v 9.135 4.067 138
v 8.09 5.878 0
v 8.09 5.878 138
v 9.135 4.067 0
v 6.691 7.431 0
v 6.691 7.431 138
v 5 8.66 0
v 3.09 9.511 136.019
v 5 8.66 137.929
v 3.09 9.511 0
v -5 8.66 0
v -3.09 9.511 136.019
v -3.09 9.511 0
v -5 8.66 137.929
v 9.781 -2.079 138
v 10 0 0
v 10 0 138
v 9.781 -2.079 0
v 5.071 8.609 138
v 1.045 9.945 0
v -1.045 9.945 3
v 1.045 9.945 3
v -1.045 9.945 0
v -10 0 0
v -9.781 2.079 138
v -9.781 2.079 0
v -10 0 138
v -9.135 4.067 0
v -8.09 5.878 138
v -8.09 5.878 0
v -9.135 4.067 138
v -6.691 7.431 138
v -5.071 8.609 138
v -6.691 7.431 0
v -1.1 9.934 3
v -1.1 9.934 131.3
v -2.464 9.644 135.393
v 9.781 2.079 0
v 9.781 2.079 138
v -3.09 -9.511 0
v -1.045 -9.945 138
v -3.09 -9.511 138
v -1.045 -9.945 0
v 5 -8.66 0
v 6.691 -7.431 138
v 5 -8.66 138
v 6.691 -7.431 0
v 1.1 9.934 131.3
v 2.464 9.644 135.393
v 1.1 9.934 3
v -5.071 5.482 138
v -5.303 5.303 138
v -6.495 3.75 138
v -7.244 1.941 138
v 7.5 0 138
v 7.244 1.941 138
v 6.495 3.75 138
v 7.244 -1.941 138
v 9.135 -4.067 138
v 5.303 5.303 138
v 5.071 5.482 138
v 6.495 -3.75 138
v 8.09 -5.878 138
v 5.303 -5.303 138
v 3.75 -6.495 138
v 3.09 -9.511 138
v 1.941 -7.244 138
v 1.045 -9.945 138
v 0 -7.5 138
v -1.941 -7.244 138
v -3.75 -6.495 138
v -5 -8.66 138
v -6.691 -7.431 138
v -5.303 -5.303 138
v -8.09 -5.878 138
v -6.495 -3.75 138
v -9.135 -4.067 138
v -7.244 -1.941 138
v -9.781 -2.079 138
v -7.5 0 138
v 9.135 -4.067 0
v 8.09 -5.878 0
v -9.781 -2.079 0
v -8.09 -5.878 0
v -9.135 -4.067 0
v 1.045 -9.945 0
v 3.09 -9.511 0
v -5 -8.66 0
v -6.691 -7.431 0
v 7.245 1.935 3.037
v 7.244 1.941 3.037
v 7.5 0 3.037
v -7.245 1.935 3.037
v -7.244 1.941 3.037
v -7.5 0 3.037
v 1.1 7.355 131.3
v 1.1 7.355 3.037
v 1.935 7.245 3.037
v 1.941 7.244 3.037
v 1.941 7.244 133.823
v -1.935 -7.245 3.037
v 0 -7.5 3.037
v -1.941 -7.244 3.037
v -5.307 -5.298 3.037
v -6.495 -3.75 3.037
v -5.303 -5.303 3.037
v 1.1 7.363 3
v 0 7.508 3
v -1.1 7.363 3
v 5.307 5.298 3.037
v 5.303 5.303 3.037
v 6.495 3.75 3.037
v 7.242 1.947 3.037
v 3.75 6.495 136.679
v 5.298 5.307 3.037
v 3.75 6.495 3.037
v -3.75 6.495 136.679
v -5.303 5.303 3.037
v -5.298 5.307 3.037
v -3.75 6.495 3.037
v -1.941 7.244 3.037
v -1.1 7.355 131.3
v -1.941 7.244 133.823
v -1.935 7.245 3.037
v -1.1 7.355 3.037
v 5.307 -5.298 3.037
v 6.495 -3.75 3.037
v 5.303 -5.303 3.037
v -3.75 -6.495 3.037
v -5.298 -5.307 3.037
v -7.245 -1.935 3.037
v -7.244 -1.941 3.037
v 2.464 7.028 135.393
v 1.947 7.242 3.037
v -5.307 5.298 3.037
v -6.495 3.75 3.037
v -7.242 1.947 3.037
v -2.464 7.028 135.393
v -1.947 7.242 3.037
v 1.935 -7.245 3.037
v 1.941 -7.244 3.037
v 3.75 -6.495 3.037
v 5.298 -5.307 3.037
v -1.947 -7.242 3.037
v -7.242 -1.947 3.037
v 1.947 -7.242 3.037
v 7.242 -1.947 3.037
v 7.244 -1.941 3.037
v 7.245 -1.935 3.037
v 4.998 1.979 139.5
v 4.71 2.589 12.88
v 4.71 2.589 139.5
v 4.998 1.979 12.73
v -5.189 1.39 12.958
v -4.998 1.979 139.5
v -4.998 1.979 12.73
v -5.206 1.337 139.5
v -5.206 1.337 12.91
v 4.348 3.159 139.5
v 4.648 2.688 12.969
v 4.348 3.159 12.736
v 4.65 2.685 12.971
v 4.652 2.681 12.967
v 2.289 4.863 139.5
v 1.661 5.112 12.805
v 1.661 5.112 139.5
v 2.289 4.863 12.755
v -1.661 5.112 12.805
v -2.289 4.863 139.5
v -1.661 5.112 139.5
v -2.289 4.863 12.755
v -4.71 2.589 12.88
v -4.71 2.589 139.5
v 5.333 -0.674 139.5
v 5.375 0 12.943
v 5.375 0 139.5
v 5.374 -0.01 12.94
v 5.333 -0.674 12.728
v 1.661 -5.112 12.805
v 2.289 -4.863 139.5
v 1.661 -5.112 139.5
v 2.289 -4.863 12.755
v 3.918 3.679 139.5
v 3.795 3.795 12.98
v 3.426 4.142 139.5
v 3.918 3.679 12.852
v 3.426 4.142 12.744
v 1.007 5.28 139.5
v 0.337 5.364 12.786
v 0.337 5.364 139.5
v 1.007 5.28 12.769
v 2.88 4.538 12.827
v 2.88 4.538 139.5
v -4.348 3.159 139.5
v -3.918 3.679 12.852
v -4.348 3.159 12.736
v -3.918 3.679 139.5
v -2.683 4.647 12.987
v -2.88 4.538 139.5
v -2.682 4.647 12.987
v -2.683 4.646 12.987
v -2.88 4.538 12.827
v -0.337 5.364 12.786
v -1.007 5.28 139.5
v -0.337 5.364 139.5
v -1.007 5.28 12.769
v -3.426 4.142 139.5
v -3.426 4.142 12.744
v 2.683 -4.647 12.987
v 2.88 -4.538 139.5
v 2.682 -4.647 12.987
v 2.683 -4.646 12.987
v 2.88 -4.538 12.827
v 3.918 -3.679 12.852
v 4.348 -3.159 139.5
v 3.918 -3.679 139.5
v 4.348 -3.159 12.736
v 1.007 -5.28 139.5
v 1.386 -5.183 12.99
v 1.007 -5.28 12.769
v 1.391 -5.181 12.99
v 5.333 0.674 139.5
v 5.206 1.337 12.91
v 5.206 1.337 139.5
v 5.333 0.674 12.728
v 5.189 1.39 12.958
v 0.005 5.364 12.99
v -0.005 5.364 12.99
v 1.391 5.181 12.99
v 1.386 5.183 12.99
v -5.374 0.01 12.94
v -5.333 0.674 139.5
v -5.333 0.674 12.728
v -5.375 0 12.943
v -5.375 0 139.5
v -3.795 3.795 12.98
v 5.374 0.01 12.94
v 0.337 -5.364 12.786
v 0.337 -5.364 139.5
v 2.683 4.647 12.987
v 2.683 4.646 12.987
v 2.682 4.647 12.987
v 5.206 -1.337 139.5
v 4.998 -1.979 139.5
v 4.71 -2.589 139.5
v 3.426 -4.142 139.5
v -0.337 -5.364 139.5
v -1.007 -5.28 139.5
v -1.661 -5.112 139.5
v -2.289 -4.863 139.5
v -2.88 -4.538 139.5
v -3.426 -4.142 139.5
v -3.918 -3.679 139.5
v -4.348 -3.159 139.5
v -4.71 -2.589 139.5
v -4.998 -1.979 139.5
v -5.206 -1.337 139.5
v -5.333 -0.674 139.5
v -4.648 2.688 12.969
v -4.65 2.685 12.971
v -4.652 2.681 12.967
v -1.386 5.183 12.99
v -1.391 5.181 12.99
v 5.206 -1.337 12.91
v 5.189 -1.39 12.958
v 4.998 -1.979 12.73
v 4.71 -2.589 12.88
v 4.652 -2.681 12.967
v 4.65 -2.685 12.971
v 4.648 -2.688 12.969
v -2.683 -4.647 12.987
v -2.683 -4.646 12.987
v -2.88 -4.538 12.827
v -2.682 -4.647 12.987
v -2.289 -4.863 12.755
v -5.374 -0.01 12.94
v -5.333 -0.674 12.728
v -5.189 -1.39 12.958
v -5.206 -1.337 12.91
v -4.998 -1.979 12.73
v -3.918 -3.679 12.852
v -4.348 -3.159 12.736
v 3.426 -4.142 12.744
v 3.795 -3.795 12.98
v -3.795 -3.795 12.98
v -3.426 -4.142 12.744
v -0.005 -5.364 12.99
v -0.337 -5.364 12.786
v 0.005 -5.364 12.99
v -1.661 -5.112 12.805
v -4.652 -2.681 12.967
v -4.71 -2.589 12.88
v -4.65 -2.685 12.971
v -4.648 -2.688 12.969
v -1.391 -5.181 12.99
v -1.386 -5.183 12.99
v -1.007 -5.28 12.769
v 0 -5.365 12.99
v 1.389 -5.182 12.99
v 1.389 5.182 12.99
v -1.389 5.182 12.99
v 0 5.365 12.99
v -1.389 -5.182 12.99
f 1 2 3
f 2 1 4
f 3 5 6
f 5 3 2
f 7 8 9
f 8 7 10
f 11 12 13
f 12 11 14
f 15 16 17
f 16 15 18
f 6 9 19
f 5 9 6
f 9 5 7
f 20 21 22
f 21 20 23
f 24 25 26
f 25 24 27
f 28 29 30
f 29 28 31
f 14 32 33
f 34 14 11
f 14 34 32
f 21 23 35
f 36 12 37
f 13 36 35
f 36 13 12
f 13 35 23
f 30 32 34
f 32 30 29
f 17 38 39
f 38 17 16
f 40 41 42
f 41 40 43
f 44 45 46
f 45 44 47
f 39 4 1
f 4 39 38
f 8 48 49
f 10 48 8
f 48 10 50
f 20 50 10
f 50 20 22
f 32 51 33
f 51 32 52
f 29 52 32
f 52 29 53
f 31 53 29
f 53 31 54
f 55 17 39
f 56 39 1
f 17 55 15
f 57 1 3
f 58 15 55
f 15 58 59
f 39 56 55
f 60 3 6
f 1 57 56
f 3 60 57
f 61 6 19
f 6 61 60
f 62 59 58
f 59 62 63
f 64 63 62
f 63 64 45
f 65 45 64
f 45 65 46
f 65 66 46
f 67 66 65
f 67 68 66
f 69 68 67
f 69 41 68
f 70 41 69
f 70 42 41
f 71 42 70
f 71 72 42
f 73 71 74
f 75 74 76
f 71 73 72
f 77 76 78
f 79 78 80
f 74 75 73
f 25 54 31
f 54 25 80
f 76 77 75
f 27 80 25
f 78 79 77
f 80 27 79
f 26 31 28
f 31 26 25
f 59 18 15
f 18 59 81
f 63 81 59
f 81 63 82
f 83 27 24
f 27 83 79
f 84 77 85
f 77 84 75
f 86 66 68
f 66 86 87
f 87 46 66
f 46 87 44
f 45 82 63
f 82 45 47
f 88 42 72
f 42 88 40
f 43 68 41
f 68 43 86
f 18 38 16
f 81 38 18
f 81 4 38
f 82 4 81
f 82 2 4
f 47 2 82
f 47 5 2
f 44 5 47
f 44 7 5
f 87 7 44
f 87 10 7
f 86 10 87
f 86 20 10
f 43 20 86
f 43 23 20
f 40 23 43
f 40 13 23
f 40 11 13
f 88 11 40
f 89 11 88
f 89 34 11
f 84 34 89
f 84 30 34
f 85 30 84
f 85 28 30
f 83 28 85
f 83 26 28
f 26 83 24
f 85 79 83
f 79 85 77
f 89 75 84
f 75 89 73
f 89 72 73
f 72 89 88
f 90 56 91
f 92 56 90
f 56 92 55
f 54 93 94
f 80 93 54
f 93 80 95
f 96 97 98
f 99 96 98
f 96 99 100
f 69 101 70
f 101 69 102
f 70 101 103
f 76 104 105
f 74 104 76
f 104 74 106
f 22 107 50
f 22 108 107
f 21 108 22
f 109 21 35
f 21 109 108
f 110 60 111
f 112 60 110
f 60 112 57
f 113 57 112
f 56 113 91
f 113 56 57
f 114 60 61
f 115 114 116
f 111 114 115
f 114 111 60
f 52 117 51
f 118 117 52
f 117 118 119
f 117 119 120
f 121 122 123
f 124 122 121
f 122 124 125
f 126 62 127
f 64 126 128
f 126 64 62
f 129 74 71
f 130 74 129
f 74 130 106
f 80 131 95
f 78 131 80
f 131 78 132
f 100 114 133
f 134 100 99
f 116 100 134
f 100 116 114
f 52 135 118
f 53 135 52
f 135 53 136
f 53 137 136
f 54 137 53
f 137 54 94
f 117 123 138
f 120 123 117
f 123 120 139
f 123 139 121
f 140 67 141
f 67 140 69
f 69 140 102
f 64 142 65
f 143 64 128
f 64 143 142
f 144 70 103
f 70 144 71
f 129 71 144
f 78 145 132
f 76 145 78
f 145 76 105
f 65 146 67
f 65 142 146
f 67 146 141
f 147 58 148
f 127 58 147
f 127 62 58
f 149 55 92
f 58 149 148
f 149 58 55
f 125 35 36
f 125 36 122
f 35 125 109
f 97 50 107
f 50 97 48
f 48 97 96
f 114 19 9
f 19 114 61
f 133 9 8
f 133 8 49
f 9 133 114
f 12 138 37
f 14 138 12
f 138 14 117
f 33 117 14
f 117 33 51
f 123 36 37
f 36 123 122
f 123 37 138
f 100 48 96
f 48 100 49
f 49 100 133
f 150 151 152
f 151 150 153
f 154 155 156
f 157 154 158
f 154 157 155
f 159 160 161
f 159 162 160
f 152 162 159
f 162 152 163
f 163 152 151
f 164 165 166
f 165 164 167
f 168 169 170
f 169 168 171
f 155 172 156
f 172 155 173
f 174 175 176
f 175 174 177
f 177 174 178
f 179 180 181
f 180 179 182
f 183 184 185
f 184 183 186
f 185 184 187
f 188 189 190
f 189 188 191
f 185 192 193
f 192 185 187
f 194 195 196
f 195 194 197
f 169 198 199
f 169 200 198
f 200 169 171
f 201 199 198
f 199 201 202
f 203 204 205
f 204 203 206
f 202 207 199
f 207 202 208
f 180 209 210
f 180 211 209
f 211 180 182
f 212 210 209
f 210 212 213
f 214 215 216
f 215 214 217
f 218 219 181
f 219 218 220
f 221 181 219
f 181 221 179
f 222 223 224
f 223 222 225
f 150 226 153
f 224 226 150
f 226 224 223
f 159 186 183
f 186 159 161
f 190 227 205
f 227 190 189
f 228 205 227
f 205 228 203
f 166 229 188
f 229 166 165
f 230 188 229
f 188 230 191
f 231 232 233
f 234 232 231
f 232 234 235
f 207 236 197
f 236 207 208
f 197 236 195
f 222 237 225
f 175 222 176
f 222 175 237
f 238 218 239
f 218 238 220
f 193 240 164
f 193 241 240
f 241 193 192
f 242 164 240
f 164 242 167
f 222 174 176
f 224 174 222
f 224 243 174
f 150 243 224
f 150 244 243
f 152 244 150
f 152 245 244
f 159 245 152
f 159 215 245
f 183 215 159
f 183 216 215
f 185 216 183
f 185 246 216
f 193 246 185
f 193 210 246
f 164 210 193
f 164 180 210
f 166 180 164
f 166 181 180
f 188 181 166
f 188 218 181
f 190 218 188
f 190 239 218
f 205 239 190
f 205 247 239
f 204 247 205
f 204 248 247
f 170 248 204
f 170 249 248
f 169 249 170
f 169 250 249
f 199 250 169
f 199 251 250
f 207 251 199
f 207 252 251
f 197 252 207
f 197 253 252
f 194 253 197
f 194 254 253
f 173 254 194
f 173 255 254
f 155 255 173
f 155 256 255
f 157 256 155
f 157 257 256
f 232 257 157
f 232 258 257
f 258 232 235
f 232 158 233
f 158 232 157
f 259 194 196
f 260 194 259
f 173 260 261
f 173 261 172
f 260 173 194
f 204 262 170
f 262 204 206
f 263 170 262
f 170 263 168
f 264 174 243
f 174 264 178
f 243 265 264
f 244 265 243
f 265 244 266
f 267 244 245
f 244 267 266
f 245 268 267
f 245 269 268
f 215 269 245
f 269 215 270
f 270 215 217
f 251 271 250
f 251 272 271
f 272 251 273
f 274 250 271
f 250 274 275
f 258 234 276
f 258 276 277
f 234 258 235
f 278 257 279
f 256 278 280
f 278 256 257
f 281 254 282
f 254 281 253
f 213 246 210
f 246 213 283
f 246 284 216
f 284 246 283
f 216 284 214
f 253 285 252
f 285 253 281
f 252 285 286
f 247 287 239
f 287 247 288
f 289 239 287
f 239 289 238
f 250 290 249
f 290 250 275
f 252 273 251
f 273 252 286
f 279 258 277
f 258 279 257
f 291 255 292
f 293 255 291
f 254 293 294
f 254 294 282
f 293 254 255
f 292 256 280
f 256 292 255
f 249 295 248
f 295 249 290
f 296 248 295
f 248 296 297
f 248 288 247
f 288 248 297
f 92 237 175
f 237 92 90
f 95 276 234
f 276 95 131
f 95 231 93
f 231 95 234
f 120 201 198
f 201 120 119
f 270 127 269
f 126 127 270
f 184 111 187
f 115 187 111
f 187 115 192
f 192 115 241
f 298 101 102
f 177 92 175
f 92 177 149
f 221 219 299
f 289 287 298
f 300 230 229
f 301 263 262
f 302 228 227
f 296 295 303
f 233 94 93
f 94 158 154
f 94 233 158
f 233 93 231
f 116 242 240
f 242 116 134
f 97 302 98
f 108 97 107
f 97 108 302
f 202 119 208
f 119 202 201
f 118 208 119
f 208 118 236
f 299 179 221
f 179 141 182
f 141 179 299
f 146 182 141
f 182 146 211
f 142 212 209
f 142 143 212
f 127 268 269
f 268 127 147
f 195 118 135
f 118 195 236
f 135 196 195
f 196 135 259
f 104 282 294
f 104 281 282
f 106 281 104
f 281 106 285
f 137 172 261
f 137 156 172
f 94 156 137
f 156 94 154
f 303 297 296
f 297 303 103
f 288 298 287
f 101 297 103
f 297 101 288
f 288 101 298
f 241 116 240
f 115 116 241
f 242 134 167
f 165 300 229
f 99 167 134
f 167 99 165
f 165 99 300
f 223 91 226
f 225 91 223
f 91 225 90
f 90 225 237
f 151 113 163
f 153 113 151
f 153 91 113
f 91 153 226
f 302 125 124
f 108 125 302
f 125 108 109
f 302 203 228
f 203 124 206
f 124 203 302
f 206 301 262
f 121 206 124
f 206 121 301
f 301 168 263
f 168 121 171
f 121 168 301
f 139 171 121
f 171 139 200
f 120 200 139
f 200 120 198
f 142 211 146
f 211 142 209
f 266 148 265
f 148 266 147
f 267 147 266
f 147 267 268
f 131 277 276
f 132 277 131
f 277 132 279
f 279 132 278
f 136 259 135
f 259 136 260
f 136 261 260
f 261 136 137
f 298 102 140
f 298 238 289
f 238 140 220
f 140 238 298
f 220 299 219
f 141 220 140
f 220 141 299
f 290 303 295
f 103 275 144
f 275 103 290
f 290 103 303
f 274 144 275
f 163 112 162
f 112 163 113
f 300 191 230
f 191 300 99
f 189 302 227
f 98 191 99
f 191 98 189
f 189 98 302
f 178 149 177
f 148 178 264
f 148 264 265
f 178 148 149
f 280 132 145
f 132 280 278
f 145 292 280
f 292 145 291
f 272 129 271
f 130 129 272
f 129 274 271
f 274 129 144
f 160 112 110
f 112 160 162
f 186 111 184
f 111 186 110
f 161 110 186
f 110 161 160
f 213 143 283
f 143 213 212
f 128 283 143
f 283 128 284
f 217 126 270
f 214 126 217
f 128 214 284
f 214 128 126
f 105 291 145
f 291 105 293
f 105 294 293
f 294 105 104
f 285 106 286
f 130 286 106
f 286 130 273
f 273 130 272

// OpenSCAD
od = 20;
id = 15;
cut = 2.2;

iid = 10.75;

end = 3;
h = 135 + end;

union() {
    difference() {
        cylinder(h = h, d = od);

        translate([0, 0, end])
            cylinder(h = 1000, d = id);

        translate([-0.5 * cut, 0, end])
            cube([cut, 1000, 1000]);

        translate([-(sqrt(200) / 2), iid / 2 + 0.01, h + 2])
        rotate([0, 45, 0])
            cube([10, 10, 10]);

        translate([0, 1.5 * iid + 0.01, h - 10])
        rotate([90, 0, 0])
        linear_extrude(height = 10)
        polygon([ [0, 0]
                , [-5, 15]
                , [5, 15]
                ]);        
        
    }
    
    
    cylinder(h = h + 1.5, d = iid, $fn = 50);
    translate([0, 0, end - 0.01])
    cylinder(r1 = id / 2 + 0.01, r2 = iid / 2 - 0.01, h = 10);
}
